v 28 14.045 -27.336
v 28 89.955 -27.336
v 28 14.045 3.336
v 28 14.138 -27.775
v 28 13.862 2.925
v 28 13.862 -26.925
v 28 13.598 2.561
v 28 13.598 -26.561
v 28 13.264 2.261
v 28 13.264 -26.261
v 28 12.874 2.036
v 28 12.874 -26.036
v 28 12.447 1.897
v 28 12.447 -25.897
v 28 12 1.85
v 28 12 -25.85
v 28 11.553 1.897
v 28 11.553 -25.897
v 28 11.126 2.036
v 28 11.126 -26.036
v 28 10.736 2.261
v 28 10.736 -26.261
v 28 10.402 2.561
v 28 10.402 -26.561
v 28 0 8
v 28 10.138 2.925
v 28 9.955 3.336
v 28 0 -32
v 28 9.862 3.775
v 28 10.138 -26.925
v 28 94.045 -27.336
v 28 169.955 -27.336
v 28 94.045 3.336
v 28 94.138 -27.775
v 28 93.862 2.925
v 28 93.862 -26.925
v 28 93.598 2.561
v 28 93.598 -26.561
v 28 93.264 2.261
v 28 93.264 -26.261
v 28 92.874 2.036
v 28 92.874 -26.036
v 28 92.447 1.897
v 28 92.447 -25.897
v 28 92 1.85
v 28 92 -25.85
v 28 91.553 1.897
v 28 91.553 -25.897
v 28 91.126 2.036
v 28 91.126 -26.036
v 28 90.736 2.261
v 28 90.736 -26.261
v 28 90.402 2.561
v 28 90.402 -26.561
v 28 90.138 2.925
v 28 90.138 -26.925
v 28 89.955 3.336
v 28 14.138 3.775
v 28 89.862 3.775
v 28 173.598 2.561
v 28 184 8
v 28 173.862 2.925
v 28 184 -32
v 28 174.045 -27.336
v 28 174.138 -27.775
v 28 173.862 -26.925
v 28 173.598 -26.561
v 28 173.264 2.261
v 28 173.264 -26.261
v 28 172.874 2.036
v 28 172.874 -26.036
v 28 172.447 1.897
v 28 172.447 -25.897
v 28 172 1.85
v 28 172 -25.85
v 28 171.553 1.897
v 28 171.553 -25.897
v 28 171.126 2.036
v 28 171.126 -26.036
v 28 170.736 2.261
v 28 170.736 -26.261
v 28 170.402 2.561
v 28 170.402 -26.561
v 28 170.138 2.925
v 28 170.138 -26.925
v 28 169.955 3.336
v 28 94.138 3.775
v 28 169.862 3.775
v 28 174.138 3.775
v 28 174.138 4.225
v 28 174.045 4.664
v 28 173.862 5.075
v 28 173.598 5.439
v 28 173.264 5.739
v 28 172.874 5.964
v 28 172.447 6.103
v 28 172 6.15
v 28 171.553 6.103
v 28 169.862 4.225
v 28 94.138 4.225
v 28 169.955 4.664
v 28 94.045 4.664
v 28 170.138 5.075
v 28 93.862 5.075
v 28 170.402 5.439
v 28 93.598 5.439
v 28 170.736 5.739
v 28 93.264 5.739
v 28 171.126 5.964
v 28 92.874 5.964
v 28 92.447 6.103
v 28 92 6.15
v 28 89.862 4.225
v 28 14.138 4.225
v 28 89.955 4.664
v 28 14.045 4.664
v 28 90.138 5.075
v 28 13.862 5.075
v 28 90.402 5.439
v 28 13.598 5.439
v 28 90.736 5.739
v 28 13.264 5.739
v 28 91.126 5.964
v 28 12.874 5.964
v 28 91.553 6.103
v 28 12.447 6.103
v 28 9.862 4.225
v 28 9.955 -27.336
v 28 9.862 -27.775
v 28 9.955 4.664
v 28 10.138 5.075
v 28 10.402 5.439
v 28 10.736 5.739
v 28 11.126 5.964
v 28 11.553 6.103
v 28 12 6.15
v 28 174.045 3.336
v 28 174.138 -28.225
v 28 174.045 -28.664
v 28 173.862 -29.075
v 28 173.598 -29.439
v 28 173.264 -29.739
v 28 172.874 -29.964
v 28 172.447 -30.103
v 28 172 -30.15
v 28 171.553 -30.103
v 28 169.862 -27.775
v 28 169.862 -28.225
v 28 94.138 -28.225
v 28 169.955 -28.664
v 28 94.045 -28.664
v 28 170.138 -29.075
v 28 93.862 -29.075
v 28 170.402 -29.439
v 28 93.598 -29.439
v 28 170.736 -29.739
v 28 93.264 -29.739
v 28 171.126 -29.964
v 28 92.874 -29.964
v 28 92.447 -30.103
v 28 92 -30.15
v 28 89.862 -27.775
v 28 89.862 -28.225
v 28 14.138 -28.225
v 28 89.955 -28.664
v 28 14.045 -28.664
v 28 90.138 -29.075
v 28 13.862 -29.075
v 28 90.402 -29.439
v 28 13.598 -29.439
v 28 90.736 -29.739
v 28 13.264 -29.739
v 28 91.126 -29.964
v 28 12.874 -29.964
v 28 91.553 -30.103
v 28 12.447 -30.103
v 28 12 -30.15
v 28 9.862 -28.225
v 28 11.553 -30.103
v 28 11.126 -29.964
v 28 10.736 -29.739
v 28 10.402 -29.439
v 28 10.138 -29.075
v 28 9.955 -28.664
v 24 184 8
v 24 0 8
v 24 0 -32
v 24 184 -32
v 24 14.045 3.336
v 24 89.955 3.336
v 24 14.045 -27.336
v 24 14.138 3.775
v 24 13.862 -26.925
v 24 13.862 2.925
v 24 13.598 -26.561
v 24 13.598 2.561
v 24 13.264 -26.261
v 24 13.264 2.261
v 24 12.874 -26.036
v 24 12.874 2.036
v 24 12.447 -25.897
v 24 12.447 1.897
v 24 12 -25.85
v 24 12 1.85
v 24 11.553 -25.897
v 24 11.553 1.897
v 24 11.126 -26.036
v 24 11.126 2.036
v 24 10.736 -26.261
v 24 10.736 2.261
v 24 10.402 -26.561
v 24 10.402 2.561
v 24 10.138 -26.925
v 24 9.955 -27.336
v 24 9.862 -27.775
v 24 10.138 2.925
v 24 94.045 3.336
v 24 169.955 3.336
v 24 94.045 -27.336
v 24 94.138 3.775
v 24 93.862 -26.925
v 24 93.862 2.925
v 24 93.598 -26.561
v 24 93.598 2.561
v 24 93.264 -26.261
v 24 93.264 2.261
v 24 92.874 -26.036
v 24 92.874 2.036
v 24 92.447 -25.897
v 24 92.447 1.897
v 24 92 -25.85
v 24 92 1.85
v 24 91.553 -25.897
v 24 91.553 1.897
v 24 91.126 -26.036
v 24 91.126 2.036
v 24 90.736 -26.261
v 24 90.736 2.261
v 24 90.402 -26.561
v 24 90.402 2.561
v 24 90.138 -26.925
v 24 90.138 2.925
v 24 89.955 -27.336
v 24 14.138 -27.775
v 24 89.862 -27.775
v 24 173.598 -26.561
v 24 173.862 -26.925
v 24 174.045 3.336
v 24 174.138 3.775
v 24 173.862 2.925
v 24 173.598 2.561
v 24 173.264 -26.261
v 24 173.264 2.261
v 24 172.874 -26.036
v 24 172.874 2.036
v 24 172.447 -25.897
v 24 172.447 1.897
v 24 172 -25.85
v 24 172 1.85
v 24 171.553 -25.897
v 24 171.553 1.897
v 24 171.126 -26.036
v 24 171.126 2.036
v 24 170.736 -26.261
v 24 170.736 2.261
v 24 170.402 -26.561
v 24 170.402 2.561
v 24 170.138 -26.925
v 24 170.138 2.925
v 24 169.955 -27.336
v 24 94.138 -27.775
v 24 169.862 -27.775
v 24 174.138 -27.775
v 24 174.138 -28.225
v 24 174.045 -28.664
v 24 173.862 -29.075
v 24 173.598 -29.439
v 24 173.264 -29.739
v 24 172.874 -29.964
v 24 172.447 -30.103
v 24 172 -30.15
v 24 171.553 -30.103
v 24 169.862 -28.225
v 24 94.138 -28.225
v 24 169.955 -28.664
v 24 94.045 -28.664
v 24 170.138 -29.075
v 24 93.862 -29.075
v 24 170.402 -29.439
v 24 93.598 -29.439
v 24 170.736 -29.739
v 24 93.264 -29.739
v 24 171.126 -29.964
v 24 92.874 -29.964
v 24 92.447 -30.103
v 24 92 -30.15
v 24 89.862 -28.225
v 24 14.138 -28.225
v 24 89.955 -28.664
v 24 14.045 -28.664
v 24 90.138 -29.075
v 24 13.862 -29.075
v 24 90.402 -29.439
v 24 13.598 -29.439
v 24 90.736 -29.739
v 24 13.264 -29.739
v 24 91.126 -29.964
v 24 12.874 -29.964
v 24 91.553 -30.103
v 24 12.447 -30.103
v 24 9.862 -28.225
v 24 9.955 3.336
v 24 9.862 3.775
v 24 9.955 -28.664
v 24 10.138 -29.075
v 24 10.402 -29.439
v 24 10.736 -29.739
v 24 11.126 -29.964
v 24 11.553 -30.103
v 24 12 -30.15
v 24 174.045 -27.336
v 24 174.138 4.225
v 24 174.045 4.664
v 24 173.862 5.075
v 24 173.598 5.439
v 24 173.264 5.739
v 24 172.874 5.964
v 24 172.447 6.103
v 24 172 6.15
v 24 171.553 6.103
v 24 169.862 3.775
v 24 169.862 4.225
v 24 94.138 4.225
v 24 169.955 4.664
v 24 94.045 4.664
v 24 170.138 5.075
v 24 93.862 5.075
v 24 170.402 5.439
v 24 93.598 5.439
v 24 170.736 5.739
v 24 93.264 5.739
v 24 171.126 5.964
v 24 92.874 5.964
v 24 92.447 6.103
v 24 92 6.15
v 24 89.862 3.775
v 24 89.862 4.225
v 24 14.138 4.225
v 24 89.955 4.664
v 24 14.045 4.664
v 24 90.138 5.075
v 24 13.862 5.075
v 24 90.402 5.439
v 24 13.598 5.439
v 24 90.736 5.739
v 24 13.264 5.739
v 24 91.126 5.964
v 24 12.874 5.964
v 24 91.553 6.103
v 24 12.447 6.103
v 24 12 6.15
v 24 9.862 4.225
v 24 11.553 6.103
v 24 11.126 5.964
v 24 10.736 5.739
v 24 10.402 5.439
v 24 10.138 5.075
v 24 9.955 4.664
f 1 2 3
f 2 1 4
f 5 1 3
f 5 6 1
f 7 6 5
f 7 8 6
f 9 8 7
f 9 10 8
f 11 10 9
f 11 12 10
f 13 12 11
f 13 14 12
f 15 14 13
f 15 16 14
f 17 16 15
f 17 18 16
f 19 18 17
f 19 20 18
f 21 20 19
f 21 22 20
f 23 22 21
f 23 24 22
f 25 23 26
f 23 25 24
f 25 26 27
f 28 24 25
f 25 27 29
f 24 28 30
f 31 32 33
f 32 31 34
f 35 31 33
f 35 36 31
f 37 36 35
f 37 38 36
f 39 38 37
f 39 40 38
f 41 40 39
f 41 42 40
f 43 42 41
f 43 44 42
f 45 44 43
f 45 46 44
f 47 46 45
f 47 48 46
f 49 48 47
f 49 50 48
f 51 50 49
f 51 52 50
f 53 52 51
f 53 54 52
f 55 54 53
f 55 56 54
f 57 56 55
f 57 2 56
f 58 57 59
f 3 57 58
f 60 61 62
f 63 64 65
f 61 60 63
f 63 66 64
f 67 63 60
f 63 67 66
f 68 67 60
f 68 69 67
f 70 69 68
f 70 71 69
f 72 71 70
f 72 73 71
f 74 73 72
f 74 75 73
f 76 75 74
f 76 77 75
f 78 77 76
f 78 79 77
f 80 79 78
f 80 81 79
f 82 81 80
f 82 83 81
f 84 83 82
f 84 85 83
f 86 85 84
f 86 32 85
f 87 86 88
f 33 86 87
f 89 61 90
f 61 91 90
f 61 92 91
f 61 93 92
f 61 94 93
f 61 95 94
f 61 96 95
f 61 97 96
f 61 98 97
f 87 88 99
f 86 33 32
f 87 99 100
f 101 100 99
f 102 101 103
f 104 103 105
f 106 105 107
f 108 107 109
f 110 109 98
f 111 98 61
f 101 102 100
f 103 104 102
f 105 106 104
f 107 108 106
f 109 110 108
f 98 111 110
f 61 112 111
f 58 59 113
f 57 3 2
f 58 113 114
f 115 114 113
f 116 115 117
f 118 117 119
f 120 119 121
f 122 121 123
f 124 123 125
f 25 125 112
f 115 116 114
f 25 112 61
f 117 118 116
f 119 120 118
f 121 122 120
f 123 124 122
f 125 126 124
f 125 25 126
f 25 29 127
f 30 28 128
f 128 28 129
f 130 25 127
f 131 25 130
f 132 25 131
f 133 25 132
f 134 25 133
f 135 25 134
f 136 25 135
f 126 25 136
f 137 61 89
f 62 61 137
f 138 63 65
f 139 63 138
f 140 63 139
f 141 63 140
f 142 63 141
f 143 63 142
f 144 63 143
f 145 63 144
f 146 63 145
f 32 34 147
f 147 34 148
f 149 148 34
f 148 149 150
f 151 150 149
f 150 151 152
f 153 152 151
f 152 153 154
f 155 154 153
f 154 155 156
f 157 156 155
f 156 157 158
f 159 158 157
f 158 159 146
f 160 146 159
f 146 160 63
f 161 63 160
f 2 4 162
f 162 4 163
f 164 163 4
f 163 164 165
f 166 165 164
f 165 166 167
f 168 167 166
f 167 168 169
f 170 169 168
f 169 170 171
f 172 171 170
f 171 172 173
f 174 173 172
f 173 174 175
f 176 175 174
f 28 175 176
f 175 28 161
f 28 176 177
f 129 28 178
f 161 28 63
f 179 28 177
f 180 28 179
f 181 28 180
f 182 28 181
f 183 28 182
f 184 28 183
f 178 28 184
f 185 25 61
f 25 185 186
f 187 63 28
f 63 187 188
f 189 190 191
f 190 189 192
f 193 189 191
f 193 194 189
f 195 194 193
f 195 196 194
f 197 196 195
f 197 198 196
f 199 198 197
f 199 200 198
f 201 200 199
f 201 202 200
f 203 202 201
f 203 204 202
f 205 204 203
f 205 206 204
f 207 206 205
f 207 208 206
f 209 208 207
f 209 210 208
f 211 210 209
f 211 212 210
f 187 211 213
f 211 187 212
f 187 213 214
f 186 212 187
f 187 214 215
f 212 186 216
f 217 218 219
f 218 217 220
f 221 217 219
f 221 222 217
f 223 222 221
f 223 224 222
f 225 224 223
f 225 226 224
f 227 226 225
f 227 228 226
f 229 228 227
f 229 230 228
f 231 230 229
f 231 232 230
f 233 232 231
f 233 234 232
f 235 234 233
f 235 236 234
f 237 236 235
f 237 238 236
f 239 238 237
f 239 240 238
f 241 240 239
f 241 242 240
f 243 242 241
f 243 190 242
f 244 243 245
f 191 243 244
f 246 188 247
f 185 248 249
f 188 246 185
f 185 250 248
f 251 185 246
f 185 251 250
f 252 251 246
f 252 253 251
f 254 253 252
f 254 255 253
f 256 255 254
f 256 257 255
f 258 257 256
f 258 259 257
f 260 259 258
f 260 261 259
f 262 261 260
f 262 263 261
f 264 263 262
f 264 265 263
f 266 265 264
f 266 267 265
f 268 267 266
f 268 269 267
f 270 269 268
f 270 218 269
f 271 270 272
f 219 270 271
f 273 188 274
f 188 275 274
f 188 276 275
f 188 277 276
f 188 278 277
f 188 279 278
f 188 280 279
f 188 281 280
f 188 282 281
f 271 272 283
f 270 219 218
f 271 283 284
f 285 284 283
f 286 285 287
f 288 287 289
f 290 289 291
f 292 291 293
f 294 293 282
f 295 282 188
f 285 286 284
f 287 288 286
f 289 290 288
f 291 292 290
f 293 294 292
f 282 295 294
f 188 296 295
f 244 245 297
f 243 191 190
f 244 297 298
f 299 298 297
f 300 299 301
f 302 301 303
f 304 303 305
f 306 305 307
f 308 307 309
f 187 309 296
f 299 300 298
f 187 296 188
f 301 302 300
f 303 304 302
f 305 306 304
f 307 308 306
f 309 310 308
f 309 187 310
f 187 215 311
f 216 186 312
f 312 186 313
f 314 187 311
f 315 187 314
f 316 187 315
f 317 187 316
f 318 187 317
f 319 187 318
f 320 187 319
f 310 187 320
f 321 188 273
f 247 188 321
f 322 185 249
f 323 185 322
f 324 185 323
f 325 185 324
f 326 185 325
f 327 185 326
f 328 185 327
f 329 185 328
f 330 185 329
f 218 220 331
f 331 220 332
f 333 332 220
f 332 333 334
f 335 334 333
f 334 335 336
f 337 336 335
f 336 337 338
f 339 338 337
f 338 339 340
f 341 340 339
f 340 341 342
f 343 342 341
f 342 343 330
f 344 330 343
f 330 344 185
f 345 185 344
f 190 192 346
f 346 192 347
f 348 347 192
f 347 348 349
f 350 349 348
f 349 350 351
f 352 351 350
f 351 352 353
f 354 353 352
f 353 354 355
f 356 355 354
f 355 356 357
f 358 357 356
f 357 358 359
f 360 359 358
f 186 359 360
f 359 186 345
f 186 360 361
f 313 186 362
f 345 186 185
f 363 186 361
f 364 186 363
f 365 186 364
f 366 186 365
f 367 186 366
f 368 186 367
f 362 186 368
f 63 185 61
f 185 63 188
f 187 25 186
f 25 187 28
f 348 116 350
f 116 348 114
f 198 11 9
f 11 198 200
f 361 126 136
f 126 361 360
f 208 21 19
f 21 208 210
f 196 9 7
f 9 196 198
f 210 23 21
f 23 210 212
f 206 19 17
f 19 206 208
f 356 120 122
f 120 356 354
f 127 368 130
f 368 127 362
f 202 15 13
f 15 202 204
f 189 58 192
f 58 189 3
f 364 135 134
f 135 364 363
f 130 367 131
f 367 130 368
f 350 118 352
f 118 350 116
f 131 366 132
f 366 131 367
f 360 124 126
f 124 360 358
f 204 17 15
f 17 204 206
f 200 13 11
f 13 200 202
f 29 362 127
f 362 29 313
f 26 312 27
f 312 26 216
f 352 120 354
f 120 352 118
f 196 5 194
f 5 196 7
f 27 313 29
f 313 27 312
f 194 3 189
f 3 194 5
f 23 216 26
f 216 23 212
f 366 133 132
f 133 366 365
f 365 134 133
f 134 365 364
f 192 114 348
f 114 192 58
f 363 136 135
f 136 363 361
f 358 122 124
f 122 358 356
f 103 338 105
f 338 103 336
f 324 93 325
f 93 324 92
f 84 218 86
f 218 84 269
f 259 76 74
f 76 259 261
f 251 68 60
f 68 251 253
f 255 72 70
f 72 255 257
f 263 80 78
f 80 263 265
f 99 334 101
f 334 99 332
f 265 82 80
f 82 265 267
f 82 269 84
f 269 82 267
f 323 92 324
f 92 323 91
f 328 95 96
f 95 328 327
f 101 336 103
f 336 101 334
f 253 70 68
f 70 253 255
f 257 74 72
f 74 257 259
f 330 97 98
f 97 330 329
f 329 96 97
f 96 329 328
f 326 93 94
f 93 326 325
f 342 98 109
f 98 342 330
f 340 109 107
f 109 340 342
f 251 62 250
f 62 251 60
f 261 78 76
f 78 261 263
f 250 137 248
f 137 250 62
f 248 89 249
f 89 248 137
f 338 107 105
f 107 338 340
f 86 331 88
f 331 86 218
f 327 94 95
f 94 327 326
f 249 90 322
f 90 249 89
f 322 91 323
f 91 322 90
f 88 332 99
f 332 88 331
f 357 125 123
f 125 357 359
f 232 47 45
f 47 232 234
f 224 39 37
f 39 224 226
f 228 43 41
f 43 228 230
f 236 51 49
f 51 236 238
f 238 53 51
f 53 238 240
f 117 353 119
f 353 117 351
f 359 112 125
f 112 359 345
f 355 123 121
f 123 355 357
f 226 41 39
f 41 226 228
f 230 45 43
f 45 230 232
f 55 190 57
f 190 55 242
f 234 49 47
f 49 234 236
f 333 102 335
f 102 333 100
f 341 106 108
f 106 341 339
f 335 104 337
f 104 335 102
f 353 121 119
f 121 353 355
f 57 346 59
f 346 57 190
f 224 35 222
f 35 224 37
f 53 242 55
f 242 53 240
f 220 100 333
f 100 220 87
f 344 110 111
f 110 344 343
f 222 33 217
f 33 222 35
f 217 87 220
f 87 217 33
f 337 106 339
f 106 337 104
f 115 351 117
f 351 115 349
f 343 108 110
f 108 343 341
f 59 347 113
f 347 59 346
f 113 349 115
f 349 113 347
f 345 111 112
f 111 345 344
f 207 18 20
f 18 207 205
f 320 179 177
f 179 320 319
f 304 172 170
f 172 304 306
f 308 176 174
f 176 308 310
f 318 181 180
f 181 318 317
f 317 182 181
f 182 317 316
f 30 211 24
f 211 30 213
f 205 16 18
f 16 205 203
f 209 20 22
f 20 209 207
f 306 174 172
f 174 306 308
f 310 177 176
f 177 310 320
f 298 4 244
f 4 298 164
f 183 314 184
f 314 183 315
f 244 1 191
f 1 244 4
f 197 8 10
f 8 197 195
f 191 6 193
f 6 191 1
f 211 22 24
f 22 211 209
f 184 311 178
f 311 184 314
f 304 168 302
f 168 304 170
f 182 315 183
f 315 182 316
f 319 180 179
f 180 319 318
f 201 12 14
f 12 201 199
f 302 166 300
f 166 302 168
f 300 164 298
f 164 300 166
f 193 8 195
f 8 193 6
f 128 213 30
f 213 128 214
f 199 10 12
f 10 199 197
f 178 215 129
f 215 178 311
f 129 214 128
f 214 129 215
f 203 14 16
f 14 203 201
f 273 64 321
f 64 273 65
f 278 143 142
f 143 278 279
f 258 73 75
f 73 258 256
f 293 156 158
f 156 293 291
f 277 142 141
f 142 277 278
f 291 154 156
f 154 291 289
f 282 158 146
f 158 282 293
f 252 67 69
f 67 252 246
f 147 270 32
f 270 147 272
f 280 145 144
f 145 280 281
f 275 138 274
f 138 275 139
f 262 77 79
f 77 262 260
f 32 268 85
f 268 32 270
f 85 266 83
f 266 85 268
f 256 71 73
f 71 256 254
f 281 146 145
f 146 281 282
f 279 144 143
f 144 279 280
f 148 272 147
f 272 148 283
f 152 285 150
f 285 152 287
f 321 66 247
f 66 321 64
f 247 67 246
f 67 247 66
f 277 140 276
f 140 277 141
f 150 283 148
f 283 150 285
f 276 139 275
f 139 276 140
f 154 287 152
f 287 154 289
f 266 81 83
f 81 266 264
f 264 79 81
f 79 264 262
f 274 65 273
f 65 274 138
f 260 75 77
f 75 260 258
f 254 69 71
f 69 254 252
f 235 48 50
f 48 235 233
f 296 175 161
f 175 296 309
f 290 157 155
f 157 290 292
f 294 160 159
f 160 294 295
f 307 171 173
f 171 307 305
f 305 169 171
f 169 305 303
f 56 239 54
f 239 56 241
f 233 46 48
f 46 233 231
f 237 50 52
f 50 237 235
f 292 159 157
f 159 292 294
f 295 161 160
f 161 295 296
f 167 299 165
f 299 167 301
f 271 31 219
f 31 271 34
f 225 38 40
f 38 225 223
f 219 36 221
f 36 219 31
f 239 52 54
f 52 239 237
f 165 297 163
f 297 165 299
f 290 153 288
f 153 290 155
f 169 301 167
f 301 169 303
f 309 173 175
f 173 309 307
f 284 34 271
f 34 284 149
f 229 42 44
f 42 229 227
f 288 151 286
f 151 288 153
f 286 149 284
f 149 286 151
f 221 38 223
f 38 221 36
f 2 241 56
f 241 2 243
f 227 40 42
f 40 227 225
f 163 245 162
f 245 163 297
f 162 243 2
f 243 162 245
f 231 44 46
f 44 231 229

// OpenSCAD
/*/ straight across track
difference() {
union () {
    cube([24,184,8]);
}
    translate([-4,12,4])
    rotate([0,90,0])
    cylinder(r=2.15,60, $fn=30);
    
    translate([-4,172,4])
    rotate([0,90,0])
    cylinder(r=2.15,60, $fn=30);
    
    translate([-4,92,4])
    rotate([0,90,0])
    cylinder(r=2.15,60, $fn=30);
}

translate([0,0,-32])
// straight across track
difference() {
union () {
    cube([24,184,8]);
}
    translate([-4,12,4])
    rotate([0,90,0])
    cylinder(r=2.15,60, $fn=30);
    
    translate([-4,172,4])
    rotate([0,90,0])
    cylinder(r=2.15,60, $fn=30);
    
    translate([-4,92,4])
    rotate([0,90,0])
    cylinder(r=2.15,60, $fn=30);
}
//*/

// GR for straight down track
difference() {
union() {
    color ("tan")
    translate([24,0,-32])
    cube([4,184,40]);
}
    translate([-4,12,4])
    rotate([0,90,0])
    cylinder(r=2.15,60, $fn=30);
    
    translate([-4,172,4])
    rotate([0,90,0])
    cylinder(r=2.15,60, $fn=30);
    
    translate([-4,92,4])
    rotate([0,90,0])
    cylinder(r=2.15,60, $fn=30);

    translate([-4,12,-28])
    rotate([0,90,0])
    cylinder(r=2.15,60, $fn=30);
    
    translate([-4,172,-28])
    rotate([0,90,0])
    cylinder(r=2.15,60, $fn=30);
    
    translate([-4,92,-28])
    rotate([0,90,0])
    cylinder(r=2.15,60, $fn=30);
}
